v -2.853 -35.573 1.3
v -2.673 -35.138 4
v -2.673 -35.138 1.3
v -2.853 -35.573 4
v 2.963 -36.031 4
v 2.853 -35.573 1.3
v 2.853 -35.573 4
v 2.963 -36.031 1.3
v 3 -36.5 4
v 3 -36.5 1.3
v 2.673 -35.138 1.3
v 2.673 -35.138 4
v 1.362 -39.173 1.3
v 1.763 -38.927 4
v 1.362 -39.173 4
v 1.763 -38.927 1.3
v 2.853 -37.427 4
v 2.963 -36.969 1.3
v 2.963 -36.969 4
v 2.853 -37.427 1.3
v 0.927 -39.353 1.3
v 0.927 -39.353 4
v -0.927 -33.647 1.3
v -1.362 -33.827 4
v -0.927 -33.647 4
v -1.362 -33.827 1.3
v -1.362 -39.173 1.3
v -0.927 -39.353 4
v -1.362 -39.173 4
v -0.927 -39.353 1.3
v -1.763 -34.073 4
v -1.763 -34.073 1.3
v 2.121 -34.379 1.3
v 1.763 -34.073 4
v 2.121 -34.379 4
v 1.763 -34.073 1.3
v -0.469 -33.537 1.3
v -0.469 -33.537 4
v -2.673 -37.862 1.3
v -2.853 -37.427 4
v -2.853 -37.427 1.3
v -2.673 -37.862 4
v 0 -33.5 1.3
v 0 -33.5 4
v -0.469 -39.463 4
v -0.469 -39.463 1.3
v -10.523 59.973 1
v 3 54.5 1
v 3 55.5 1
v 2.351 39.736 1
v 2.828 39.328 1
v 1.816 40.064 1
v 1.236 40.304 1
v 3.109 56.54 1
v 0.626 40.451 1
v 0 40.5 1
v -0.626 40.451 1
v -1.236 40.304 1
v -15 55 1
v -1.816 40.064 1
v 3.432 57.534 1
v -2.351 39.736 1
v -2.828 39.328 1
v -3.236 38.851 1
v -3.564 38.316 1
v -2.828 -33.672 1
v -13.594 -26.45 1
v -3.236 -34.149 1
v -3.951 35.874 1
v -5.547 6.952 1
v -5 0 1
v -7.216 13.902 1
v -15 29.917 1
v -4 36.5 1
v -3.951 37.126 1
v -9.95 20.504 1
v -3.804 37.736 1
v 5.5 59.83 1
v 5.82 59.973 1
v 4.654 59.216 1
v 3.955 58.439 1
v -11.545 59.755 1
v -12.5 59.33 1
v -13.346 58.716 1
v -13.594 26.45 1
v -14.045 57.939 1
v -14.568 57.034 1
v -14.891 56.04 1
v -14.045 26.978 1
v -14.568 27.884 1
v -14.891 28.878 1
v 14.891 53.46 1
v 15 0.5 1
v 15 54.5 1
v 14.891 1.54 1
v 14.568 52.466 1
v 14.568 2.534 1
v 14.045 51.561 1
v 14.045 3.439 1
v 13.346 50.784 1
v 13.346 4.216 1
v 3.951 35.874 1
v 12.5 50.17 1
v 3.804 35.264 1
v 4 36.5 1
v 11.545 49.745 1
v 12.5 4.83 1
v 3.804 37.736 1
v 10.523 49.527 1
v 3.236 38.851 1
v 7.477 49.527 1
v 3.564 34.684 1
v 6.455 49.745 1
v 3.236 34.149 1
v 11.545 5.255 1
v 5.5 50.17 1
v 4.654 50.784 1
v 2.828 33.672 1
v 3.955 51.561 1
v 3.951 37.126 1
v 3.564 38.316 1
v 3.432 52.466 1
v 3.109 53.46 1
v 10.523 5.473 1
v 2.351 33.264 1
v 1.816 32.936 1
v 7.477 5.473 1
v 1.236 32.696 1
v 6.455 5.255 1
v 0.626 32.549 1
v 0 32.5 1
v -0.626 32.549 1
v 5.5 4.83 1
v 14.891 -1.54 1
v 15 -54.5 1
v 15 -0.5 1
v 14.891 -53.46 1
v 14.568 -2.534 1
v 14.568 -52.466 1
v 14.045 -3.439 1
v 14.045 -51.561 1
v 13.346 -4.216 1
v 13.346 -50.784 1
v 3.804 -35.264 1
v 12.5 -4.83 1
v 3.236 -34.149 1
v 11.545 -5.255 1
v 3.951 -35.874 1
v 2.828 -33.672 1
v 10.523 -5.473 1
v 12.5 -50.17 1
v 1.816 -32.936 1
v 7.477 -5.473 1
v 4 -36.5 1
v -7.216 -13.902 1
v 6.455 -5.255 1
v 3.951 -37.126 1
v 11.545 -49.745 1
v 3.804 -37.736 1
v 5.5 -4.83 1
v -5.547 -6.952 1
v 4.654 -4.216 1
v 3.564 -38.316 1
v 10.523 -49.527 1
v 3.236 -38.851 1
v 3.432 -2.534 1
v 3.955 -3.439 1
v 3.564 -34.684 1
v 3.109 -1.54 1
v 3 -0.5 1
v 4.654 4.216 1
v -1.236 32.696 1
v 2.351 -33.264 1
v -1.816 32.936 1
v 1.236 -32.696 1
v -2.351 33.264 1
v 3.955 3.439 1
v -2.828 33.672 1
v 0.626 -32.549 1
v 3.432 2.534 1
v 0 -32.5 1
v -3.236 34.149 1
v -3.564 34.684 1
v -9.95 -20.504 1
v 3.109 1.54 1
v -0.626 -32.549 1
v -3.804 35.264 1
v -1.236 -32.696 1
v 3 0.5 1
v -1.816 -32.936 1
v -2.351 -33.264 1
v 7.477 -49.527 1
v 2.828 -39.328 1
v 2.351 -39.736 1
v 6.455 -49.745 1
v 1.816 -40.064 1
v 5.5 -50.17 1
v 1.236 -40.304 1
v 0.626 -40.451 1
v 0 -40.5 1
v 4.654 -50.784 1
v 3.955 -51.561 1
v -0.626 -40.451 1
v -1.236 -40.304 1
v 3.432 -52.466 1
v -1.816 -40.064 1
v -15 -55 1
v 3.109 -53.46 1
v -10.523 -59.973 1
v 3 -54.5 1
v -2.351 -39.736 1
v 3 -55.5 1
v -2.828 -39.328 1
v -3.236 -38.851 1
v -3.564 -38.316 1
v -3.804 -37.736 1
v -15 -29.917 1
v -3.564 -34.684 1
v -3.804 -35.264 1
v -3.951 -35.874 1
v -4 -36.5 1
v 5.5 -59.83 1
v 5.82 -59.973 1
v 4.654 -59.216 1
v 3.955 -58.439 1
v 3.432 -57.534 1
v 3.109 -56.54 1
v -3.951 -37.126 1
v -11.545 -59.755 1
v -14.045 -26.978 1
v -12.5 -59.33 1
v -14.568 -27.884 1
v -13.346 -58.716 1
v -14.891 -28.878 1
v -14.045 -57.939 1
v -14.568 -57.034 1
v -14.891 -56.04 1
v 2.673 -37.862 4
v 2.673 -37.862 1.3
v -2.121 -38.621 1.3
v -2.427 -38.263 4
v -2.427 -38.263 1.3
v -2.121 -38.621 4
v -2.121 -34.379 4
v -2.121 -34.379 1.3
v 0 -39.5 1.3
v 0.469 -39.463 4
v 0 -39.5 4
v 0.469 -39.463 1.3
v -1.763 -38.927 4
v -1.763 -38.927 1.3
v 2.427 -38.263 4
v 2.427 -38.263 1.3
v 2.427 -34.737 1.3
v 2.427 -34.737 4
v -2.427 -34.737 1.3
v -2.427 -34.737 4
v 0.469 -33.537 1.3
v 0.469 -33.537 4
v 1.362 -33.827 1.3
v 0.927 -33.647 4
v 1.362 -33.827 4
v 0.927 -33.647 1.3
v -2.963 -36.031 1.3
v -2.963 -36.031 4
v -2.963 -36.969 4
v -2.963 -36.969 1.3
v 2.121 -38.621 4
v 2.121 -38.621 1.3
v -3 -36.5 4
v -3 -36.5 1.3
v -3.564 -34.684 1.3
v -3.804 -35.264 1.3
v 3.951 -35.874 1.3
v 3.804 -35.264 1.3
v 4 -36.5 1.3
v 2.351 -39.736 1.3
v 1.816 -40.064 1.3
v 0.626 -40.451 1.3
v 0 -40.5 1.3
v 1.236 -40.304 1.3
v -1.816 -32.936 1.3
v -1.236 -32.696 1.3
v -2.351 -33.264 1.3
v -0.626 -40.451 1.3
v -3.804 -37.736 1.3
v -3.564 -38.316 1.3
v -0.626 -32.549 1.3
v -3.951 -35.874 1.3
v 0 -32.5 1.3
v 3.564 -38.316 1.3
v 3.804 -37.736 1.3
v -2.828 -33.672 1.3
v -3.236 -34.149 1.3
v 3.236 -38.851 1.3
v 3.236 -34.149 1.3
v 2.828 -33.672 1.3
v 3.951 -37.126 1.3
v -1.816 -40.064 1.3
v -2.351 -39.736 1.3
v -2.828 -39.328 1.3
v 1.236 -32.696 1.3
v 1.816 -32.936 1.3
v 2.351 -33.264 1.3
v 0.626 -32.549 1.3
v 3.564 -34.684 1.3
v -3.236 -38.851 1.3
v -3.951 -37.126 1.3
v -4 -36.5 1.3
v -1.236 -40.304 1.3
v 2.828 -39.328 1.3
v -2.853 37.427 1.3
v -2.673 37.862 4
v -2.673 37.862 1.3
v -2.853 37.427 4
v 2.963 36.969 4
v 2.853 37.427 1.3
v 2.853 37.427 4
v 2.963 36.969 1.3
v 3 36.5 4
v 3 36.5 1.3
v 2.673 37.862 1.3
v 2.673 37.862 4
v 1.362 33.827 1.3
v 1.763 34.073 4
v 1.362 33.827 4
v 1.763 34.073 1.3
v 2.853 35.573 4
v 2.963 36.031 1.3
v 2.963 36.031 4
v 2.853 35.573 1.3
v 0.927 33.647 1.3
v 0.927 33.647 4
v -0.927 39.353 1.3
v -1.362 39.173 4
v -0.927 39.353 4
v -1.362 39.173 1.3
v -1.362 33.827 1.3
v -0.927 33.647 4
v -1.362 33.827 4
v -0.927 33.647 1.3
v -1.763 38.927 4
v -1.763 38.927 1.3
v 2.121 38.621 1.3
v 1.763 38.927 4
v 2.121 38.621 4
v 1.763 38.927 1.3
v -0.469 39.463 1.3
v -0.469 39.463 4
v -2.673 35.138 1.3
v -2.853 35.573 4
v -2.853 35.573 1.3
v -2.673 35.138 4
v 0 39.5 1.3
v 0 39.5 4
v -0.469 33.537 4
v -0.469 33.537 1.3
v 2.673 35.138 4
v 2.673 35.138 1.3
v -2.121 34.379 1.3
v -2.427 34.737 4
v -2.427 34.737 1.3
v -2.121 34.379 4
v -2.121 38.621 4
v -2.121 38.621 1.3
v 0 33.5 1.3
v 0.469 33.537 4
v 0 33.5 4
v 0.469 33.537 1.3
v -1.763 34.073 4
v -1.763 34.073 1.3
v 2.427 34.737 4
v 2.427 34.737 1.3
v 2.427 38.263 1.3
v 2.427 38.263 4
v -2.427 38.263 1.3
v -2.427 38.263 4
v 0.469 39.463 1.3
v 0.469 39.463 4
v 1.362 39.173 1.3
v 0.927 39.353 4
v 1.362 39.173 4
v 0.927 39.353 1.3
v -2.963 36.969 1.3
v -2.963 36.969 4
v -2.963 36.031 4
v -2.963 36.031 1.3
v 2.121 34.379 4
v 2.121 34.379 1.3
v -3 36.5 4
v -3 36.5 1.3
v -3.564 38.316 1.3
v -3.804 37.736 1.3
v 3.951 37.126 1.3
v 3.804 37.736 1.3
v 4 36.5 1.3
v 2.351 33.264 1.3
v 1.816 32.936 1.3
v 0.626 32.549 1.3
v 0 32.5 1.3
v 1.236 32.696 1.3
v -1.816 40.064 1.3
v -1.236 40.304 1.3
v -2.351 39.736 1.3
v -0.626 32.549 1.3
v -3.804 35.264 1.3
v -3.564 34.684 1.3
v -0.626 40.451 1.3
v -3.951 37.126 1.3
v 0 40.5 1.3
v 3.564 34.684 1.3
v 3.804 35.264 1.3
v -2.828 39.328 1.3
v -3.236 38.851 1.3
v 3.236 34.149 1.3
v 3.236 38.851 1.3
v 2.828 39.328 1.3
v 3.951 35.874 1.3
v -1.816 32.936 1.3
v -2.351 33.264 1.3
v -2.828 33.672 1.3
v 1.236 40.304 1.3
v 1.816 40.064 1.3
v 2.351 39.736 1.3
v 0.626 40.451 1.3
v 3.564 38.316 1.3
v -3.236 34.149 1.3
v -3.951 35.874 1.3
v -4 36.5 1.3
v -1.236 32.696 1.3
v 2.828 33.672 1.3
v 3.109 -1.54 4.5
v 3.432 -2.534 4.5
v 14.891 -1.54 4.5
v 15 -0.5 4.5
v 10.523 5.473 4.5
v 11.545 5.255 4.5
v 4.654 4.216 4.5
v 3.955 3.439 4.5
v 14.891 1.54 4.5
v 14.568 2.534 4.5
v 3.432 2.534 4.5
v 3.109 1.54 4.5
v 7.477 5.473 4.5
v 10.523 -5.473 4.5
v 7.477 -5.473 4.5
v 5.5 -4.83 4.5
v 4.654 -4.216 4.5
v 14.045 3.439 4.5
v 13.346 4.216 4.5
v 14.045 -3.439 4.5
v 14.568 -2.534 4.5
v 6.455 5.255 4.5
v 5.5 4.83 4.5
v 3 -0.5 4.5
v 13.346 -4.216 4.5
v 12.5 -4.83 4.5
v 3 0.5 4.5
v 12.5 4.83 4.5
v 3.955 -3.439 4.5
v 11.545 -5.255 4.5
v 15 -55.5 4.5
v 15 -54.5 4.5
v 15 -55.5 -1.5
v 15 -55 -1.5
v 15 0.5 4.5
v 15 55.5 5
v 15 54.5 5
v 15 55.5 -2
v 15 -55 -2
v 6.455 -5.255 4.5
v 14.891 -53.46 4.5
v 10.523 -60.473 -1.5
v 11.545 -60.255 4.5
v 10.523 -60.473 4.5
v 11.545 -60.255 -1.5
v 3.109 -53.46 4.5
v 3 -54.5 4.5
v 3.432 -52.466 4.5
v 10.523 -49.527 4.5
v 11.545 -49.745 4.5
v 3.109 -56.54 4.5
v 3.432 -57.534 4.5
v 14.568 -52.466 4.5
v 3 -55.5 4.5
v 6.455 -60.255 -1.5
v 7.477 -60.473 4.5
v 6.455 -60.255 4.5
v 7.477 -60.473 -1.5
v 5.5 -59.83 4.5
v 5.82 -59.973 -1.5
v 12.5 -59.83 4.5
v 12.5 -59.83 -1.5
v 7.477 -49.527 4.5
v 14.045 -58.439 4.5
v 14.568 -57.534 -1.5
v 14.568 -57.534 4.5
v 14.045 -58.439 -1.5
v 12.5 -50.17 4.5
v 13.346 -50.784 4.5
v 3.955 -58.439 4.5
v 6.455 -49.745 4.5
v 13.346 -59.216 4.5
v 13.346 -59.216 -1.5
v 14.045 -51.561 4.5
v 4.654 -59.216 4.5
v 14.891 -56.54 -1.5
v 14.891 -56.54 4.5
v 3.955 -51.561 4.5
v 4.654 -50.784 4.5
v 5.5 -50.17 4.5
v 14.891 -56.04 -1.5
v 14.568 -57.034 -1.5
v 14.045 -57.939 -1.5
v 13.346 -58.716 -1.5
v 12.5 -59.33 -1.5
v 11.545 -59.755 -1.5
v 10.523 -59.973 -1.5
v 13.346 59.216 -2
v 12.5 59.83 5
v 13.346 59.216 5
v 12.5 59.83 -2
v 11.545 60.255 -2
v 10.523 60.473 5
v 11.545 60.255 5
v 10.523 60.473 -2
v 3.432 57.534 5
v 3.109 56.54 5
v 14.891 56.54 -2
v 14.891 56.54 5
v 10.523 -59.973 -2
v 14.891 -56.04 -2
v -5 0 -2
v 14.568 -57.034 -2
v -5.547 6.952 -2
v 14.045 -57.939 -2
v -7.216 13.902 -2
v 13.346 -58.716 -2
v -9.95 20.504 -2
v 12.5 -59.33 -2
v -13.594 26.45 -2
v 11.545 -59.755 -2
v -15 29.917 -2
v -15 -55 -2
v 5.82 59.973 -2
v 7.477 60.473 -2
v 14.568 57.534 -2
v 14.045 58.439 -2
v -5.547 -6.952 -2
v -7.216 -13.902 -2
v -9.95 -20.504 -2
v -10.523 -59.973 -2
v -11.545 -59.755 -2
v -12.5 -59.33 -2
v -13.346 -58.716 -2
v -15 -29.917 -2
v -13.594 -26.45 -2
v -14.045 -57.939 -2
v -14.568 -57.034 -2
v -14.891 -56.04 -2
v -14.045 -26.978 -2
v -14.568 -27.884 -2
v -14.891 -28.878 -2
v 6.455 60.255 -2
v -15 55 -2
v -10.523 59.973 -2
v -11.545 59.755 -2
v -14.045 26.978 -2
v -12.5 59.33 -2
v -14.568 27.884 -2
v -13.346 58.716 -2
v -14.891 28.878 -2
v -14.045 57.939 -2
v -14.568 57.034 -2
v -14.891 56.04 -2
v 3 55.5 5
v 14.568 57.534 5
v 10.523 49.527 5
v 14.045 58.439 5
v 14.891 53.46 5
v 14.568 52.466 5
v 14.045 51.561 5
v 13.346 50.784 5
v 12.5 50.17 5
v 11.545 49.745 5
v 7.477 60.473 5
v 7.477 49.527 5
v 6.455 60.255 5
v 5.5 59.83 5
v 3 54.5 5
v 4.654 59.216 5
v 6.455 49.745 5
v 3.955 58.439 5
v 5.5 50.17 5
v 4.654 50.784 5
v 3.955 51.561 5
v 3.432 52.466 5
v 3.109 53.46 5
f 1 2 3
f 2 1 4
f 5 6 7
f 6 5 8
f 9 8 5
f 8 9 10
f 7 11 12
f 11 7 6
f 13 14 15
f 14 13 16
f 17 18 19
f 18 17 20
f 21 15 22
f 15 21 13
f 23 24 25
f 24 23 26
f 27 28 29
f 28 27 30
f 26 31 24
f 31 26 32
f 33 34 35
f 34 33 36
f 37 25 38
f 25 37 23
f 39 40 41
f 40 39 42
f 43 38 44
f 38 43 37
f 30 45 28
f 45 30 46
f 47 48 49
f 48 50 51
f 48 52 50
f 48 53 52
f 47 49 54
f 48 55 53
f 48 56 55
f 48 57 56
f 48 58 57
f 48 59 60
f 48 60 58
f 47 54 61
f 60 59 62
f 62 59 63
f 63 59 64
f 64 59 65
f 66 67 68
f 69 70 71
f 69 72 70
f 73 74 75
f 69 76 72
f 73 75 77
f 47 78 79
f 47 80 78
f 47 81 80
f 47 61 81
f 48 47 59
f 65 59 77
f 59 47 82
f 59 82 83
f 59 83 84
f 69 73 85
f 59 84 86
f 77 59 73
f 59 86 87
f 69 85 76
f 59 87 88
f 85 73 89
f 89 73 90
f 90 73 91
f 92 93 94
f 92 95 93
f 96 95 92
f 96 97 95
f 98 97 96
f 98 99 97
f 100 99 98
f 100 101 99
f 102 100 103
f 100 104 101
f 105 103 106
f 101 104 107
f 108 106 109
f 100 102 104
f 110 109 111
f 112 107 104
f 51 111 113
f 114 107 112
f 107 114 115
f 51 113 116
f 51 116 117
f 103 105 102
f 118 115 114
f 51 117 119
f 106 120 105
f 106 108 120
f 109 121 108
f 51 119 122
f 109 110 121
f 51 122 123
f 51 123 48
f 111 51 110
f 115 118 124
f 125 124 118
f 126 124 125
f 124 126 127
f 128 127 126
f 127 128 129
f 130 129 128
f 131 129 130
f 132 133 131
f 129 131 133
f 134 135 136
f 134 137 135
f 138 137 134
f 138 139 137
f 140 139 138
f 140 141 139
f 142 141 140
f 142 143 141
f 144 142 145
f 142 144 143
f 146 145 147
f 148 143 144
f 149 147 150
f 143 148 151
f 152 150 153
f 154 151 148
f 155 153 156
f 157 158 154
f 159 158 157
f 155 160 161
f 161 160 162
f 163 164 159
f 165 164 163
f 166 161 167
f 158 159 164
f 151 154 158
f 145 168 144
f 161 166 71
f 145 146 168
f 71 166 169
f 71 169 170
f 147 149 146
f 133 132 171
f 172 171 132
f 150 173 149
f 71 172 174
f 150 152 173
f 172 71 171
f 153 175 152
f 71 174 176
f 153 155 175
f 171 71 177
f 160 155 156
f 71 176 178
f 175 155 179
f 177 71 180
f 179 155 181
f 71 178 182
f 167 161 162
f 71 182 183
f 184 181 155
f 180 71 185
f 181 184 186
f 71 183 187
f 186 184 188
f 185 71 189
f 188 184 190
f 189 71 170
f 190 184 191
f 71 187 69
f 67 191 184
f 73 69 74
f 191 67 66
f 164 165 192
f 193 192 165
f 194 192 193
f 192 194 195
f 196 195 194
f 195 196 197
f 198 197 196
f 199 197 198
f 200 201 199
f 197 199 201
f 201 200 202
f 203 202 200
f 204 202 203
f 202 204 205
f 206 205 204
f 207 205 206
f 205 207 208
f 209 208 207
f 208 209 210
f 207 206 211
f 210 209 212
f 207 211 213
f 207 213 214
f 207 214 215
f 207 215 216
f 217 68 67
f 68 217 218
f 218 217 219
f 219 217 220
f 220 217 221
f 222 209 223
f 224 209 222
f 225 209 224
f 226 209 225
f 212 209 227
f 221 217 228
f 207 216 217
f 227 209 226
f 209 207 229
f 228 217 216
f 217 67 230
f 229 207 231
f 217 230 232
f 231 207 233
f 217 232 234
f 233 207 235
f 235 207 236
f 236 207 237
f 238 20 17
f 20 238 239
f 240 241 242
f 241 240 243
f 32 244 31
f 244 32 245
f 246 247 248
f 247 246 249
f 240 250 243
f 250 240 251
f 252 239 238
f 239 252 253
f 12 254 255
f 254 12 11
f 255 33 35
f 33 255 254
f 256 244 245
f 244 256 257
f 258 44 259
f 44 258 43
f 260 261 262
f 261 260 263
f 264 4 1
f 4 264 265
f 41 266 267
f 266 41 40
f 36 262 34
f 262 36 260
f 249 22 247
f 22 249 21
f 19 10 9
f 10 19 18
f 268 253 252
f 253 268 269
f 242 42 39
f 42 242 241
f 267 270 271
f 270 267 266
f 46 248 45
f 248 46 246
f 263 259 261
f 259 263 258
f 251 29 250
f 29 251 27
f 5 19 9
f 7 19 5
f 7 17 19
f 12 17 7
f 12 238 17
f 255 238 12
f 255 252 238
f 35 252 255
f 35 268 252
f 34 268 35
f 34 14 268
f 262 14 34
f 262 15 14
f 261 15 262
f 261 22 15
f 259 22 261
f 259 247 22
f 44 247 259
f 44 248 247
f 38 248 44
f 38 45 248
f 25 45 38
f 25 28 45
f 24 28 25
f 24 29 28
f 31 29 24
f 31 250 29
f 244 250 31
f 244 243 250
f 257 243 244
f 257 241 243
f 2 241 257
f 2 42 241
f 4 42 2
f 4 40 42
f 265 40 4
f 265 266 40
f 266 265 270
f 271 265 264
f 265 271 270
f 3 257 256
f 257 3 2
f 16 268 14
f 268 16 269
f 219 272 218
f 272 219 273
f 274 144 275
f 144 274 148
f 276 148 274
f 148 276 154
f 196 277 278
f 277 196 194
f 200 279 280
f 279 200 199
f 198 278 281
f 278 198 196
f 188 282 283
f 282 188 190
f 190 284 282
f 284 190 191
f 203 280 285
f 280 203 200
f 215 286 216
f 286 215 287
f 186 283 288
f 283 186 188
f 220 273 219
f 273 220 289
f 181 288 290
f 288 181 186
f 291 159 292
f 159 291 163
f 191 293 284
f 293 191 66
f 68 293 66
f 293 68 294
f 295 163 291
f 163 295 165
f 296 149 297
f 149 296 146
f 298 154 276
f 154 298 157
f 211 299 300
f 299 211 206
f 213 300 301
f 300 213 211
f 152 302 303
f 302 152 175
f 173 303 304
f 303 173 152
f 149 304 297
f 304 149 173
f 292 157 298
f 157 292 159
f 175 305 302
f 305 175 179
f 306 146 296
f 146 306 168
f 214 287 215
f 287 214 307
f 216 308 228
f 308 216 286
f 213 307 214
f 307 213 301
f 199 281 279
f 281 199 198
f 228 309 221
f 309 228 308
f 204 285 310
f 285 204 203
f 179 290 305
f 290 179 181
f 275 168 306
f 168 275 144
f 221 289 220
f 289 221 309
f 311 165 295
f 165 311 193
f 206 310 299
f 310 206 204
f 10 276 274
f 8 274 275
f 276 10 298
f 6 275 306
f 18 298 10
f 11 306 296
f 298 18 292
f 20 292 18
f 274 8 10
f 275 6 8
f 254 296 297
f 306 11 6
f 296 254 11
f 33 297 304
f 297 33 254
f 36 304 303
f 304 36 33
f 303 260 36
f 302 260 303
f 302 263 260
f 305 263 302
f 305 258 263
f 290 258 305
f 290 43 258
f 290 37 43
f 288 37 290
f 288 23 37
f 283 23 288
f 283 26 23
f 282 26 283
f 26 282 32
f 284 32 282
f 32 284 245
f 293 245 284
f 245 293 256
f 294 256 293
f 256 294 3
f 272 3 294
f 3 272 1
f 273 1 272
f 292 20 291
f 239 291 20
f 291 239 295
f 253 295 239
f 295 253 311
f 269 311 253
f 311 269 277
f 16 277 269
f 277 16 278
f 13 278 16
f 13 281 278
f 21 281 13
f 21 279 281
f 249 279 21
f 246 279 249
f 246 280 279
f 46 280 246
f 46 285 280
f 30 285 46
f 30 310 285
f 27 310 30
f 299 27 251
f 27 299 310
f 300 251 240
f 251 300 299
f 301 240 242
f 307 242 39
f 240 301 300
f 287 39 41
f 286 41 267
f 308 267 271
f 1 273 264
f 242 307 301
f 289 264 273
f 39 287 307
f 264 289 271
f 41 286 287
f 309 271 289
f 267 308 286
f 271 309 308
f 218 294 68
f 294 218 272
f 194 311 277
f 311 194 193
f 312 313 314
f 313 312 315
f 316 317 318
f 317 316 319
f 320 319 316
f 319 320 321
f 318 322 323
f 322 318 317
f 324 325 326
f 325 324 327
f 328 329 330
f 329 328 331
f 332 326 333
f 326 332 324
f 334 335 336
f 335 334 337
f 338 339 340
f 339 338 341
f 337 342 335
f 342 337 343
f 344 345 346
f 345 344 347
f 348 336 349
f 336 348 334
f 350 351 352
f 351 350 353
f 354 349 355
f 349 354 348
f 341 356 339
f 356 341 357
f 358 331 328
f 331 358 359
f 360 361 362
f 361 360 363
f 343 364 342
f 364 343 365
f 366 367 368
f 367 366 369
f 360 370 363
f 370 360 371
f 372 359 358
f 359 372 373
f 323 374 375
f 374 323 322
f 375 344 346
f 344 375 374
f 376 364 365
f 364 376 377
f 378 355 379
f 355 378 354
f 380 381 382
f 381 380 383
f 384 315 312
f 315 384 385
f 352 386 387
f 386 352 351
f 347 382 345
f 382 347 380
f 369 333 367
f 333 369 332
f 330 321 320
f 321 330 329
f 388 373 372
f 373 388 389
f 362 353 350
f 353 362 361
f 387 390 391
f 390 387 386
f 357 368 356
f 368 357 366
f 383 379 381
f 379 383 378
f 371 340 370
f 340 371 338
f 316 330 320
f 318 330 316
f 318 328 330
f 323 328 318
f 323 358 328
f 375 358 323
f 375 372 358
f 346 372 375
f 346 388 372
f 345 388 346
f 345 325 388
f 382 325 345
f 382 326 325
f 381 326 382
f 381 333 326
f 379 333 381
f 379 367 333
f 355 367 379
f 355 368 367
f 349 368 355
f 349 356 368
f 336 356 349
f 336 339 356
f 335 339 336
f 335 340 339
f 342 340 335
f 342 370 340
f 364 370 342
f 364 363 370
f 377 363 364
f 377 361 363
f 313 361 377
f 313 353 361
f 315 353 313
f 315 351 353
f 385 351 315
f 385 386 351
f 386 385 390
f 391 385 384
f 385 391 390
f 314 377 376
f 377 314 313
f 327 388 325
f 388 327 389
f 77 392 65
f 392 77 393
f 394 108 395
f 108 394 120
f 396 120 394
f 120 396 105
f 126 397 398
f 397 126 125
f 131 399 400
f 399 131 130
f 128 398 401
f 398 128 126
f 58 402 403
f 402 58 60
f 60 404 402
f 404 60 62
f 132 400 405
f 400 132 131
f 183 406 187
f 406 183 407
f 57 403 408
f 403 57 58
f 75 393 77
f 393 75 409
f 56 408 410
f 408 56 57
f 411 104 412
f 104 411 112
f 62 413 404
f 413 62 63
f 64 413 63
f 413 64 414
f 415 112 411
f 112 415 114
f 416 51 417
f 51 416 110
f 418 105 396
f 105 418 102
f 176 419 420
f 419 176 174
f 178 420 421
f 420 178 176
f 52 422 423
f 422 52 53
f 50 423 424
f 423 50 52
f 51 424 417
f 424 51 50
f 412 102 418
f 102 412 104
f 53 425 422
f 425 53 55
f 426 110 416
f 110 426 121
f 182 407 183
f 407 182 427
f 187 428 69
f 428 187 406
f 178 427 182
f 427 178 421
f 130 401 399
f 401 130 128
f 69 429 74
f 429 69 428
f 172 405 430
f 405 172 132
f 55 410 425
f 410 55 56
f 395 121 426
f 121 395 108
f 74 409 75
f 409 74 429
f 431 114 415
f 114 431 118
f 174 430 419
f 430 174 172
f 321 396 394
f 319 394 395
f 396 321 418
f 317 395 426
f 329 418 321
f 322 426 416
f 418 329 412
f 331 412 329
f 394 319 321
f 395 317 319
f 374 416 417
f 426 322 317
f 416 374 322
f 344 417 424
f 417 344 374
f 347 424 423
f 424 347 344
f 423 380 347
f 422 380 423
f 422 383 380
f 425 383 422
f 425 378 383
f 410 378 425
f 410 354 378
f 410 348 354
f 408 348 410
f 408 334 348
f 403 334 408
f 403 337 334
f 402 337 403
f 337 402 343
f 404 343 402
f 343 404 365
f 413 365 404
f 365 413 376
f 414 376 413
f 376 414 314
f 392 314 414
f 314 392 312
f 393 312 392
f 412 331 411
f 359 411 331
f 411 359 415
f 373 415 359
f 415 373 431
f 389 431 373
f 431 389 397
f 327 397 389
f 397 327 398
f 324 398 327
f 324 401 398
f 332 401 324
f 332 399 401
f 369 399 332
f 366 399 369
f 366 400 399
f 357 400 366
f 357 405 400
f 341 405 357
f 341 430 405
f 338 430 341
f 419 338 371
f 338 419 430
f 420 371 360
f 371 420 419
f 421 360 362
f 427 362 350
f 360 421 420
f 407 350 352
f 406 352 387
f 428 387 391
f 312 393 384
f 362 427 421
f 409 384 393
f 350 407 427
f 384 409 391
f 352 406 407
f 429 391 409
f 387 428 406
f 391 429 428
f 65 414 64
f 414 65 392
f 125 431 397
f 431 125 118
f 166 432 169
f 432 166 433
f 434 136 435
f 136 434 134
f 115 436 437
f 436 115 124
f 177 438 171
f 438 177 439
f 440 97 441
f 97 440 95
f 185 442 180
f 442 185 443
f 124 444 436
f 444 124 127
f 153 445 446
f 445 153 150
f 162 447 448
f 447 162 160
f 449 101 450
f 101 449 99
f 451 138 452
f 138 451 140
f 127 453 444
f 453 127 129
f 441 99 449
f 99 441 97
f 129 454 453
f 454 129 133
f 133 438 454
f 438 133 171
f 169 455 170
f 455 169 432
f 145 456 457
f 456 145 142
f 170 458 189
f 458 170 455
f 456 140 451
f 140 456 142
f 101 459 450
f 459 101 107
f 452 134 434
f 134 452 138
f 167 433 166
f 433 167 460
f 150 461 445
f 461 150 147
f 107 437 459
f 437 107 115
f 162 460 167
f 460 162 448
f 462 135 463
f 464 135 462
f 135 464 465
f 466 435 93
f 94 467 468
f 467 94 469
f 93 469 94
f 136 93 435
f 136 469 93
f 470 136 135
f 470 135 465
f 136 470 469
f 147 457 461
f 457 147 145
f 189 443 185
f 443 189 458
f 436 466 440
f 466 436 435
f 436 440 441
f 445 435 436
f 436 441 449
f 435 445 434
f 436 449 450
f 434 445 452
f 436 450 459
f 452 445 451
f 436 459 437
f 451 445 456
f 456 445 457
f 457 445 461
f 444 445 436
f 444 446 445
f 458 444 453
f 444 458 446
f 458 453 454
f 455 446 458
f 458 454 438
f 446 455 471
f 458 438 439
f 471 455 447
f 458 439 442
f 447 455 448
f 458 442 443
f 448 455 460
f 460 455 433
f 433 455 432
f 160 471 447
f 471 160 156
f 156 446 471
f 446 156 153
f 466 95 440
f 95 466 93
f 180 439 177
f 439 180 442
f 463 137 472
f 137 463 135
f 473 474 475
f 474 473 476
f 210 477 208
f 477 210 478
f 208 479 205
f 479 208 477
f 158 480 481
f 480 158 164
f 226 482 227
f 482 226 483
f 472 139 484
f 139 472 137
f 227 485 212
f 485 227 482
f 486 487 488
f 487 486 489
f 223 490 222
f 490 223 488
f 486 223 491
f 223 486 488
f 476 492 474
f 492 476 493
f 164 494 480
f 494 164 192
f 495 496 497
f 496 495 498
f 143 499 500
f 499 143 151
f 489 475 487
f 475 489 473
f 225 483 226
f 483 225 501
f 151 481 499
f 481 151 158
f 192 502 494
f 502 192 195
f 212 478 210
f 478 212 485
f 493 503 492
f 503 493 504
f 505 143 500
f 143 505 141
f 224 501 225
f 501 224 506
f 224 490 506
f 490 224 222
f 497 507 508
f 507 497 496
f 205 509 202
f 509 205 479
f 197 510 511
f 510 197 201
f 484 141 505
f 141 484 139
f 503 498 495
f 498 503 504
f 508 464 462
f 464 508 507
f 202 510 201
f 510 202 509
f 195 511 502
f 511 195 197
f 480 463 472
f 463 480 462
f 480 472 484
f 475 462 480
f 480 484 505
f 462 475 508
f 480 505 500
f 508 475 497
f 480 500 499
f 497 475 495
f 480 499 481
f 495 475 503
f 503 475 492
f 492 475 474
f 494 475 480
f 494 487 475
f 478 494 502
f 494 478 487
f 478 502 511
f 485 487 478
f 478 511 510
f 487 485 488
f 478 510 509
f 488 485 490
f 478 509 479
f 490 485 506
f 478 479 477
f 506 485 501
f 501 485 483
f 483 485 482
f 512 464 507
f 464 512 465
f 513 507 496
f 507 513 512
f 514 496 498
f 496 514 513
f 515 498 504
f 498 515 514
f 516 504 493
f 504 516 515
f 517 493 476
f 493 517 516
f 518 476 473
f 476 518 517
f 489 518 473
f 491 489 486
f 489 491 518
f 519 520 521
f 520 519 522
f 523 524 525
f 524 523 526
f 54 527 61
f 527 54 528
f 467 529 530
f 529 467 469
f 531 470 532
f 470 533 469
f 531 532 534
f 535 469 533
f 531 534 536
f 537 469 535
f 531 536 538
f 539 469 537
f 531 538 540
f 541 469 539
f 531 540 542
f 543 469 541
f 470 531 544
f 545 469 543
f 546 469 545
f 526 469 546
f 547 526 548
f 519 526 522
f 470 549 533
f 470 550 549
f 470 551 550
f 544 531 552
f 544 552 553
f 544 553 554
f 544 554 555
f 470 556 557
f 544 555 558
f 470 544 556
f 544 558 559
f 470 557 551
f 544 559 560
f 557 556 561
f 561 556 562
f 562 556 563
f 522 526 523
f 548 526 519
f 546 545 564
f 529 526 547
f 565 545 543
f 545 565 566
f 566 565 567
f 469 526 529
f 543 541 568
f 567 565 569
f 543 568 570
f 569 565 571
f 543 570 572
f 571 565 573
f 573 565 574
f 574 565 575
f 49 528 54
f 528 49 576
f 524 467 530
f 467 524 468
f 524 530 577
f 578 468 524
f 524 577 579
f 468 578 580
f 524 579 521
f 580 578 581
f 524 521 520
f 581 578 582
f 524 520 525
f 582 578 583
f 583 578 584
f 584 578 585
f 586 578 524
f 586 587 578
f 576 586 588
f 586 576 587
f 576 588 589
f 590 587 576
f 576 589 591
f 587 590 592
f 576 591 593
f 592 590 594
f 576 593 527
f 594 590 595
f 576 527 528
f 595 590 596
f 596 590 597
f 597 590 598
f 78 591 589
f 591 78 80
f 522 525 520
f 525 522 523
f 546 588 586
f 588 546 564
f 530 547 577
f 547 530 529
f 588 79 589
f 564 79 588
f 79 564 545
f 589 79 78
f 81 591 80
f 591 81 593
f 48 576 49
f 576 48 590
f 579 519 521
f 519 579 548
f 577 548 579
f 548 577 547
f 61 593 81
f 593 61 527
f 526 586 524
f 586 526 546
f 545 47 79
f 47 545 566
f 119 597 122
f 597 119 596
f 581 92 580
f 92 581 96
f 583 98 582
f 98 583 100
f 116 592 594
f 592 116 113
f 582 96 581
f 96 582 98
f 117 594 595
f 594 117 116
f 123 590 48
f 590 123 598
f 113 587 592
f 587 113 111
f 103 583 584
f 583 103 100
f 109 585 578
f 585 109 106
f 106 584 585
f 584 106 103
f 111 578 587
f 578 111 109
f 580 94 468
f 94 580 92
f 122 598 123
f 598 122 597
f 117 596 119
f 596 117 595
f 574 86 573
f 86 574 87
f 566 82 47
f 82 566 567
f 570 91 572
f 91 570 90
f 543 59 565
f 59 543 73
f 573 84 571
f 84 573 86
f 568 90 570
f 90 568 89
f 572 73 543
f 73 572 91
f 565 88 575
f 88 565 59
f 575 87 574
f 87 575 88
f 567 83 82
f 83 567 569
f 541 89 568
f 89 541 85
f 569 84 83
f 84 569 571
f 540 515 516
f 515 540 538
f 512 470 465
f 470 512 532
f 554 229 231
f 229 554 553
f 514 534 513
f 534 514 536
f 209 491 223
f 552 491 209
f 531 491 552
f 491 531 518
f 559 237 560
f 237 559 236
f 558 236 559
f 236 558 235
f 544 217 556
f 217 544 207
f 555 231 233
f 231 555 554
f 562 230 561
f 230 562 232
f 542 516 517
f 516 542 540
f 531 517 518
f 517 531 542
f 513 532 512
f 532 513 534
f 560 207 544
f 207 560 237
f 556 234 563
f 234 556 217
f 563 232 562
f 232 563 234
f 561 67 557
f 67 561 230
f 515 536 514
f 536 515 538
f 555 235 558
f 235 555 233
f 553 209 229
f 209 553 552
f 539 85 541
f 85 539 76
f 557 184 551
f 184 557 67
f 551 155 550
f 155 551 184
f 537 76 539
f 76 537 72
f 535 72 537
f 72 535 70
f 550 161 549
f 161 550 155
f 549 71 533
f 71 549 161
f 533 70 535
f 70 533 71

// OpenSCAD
//translate([80,-158,20]) rotate([0,0,90]) {  import("The_Ultimate_Spool_Holder_v2.stl", convexity=3);}

bearing_thinkness = 6;
bearing_inner_diameter = 6;
bearing_diameter = 17;
birm_height = 0.3;

case_thickness = 2;
lenght = 110;
height = 20;
margin = 10;
distance = (lenght/2) - margin - bearing_diameter/2;

module birm() {
    cylinder(birm_height,d=bearing_inner_diameter+2,true,$fn=40);
}

module bearingPlug() {
    cylinder(bearing_thinkness/2,d=bearing_inner_diameter,true,$fn=40);
    birm();
}

module cutOuts(){
    diameter = 100;
    translate([-diameter/2,0,-10]) cylinder(40,d=diameter,true,$fn=40);
}
module base(){
     difference() {
            cube(size = [height,lenght,case_thickness], center = true);
            cutOuts();
    }
    
    // Bottom
     translate([height/2-case_thickness/2,distance+margin+8.5,case_thickness])  cube(size = [case_thickness,1,bearing_thinkness], center = true);
    // Bottom
     translate([height/2-case_thickness/2,-distance-margin-8.5,case_thickness])  cube(size = [case_thickness,1,bearing_thinkness-1], center = true);
    translate([height/2-case_thickness/2,0,case_thickness])  cube(size = [case_thickness,1,bearing_thinkness-1], center = true);
}

$fn=30;
minkowski()
{
    translate([0,0,-1]) base();
    cylinder(r=5,h=1);
}



translate([0,-distance,case_thickness/2])  bearingPlug();
translate([0,distance,case_thickness/2])  bearingPlug();
